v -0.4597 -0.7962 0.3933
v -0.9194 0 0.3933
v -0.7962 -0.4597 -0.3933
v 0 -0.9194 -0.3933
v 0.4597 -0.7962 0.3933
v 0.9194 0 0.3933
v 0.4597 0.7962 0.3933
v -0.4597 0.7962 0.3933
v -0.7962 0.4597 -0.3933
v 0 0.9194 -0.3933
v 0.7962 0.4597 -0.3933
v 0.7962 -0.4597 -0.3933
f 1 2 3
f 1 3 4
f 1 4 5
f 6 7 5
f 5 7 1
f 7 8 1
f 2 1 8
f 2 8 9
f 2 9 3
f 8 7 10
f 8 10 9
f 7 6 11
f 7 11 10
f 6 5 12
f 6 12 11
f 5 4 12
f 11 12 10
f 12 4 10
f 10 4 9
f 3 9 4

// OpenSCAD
polyhedron( points = [[-0.459700843386913, -0.796225216998373, 0.39331989315425], [-0.91940168675787, 1.12461764205915e-10, 0.39331989315425], [-0.459700843315417, 0.796225217016911, 0.39331989315425], [0.45970084337883, 0.796225216934348, 0.39331989315425], [0.919401686678294, -5.26499188023367e-11, 0.39331989315425], [0.459700843307338, -0.796225216998373, 0.39331989315425], [-1.59556096395092e-11, -0.919401686689887, -0.393319893165315], [-0.796225216961678, -0.459700843271267, -0.393319893165315], [-0.796225216843109, 0.459700843400213, -0.393319893192307], [6.66001808275708e-11, 0.919401686785079, -0.3933198931363], [0.796225216868338, 0.459700843215036, -0.393319893153869], [0.796225216981544, -0.459700843453501, -0.393319893112391]], faces = [[0, 1, 7], [0, 7, 6], [0, 6, 5], [0, 5, 4, 3, 2, 1], [1, 2, 8], [1, 8, 7], [2, 3, 9], [2, 9, 8], [3, 4, 10], [3, 10, 9], [4, 5, 11], [4, 11, 10], [5, 6, 11], [6, 7, 8, 9, 10, 11]]);
